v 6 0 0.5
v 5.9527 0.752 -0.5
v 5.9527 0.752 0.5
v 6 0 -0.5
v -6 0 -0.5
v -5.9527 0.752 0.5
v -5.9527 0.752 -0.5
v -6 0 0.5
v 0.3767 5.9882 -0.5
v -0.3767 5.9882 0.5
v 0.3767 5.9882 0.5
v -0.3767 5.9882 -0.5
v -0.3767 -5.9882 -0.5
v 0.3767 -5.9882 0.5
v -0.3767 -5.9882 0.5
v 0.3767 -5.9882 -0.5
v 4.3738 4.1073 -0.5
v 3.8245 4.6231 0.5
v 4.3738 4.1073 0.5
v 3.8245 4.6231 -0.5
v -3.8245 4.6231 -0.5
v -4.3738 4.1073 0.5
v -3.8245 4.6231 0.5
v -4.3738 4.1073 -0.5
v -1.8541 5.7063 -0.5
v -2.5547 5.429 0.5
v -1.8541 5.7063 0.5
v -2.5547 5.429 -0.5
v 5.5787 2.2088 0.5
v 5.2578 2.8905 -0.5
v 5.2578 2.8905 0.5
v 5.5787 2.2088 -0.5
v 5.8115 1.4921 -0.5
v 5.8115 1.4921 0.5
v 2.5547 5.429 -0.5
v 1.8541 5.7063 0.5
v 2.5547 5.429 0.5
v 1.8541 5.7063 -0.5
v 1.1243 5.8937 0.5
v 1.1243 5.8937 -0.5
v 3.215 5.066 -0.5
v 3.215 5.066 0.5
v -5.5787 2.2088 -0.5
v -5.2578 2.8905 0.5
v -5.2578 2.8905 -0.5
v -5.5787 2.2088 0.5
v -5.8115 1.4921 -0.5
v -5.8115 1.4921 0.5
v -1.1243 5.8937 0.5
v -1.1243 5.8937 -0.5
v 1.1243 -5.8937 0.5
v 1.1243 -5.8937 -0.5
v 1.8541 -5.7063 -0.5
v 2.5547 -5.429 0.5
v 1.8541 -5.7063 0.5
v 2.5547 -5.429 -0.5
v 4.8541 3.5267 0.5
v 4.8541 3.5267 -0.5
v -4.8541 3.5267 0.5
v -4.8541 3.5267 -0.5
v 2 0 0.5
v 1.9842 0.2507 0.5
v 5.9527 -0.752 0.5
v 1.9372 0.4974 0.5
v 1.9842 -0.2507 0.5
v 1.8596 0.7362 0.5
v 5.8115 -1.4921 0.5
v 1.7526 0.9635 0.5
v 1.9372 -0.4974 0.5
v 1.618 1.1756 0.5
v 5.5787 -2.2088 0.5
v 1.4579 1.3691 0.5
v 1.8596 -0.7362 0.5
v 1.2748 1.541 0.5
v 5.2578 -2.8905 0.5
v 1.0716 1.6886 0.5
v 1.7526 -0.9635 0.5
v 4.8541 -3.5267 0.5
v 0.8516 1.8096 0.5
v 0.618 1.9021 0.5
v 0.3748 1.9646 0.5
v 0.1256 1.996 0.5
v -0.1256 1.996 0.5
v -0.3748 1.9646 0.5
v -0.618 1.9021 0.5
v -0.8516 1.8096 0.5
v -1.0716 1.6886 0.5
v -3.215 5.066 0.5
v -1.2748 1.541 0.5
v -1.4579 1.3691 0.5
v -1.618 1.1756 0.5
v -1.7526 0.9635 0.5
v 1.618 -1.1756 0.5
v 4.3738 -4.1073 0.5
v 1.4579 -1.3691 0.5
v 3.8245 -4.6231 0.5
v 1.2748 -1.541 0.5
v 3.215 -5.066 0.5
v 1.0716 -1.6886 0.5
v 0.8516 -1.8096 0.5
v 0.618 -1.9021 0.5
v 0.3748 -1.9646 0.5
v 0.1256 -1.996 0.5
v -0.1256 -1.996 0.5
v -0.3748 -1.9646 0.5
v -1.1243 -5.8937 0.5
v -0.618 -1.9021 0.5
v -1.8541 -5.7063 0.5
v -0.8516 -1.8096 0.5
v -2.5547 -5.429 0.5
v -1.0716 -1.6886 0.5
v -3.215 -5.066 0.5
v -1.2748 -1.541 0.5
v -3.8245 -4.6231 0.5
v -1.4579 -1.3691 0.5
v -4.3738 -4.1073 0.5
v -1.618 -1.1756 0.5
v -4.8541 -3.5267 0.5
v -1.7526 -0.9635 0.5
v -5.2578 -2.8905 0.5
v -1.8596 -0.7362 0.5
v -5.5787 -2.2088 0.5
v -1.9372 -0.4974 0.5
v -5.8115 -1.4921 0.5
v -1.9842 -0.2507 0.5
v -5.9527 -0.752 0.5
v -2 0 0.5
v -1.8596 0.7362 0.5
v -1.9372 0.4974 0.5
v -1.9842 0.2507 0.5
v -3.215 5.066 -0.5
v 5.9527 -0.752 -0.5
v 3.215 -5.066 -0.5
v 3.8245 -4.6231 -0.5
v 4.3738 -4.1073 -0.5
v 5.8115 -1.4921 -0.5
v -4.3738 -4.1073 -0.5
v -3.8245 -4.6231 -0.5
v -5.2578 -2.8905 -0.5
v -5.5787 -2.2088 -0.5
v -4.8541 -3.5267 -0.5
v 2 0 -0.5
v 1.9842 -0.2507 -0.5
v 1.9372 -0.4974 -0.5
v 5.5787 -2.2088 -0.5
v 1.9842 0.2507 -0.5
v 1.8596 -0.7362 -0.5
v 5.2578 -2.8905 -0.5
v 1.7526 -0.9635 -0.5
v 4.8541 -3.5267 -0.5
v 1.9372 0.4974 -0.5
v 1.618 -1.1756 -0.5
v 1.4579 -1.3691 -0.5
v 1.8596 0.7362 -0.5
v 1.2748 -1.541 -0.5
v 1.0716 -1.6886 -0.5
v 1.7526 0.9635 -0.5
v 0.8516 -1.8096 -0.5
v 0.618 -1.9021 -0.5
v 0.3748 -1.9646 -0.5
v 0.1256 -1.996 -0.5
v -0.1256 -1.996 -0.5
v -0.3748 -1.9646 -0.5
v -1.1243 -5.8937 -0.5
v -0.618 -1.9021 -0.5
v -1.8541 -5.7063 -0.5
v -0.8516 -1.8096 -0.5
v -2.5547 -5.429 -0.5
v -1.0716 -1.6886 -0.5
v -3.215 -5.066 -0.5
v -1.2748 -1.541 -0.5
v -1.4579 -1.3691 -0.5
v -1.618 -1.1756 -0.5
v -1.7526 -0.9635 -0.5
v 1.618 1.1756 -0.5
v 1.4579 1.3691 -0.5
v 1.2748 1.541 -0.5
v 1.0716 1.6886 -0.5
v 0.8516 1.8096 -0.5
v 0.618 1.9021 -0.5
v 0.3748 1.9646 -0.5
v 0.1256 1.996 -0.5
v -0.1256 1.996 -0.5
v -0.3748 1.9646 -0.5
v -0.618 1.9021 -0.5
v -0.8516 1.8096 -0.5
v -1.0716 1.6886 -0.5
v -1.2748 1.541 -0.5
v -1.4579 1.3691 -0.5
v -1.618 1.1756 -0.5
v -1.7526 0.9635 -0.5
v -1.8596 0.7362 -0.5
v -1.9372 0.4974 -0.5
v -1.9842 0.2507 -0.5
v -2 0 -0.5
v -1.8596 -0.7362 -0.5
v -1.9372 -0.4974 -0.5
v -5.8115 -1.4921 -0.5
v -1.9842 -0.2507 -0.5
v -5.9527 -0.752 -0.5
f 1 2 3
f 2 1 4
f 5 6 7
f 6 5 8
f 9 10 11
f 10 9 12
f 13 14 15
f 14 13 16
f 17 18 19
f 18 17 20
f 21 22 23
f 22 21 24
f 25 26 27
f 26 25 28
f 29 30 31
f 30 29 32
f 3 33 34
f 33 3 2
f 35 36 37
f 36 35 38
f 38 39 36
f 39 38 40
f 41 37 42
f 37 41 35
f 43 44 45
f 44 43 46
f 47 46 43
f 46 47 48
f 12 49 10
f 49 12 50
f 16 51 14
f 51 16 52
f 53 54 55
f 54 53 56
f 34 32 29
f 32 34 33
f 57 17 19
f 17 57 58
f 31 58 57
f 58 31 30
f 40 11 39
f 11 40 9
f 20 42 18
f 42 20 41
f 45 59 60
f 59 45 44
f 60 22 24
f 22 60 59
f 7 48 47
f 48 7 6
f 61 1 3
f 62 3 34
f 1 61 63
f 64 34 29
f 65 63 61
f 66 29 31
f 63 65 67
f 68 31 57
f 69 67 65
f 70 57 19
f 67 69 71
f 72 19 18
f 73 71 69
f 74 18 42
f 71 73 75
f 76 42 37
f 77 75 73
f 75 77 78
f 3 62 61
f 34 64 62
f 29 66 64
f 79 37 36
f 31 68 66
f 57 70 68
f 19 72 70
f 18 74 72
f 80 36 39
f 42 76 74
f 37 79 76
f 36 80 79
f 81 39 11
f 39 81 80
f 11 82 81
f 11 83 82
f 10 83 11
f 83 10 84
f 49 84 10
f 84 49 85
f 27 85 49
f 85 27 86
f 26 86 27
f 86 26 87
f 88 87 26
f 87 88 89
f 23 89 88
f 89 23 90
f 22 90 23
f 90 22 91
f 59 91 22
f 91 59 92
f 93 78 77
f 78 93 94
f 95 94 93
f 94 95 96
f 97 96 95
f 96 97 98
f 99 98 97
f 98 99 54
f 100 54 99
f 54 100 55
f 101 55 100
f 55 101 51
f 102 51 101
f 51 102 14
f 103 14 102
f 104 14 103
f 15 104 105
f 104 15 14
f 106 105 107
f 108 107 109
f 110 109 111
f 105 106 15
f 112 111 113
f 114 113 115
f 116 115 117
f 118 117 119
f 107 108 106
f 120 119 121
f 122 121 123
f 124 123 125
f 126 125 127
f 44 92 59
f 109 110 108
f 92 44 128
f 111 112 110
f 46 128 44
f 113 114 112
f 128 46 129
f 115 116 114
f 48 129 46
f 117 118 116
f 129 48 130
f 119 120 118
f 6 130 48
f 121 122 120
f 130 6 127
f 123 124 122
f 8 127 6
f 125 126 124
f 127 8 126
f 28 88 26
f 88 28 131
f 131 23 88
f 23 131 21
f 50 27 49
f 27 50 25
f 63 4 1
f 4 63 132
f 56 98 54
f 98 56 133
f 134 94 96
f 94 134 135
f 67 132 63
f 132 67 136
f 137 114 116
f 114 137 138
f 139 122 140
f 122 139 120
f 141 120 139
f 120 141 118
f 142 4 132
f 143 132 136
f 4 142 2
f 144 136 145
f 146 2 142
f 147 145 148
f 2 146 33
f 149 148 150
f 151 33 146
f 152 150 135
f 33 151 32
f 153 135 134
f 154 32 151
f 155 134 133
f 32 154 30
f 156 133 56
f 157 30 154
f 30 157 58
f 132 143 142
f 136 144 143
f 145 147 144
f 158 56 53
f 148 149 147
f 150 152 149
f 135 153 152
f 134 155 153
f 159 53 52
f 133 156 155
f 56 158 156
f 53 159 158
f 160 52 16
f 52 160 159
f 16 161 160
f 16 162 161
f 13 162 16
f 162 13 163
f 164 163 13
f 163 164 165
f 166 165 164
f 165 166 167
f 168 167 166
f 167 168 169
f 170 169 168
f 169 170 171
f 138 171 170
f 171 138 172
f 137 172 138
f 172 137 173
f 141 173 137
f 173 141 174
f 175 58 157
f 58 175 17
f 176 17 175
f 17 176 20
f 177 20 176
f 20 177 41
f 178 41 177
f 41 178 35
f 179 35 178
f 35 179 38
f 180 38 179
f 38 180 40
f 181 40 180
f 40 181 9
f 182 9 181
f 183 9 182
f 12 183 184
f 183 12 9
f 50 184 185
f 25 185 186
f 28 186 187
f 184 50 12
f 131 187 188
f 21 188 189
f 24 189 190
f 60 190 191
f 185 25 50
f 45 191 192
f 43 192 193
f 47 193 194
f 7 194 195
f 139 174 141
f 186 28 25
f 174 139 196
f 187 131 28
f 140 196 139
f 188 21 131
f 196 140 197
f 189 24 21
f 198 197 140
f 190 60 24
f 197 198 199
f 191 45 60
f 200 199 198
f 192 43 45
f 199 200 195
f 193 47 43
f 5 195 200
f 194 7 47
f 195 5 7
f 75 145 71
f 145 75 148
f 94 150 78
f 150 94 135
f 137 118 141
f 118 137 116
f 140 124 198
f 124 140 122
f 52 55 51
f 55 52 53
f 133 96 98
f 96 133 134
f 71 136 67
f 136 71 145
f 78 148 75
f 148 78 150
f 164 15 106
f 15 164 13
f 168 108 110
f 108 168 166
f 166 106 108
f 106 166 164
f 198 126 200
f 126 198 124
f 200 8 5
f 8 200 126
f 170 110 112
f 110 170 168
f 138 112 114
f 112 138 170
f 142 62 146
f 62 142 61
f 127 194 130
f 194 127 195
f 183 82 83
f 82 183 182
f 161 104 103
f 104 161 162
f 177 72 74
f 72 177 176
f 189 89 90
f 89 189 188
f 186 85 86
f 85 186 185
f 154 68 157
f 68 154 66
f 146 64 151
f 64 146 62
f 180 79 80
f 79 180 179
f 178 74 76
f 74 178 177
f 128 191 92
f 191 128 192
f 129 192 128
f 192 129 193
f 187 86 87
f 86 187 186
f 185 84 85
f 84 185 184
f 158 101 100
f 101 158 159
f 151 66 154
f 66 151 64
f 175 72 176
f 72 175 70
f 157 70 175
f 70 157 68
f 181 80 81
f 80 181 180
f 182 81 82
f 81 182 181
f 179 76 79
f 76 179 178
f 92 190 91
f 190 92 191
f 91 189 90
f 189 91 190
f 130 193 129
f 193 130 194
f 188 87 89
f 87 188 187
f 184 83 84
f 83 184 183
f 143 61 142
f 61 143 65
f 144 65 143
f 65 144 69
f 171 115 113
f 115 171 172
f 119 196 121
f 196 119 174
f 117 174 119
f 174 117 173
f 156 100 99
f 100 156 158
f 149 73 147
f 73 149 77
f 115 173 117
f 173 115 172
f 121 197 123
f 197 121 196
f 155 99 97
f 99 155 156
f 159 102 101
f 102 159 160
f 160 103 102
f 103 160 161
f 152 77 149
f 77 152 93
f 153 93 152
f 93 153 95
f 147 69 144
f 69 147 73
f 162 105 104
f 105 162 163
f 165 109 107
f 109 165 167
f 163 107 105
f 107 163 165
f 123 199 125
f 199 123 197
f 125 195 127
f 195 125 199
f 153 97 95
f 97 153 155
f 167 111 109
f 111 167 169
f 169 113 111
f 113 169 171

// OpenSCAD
$fn = 50;


difference() {
	union() {
		translate(v = [0, 0, -0.5000000000]) {
			cylinder(h = 1, r = 6.0000000000);
		}
	}
	union() {
		translate(v = [0, 0, -100.0000000000]) {
			cylinder(h = 200, r = 2);
		}
	}
}
